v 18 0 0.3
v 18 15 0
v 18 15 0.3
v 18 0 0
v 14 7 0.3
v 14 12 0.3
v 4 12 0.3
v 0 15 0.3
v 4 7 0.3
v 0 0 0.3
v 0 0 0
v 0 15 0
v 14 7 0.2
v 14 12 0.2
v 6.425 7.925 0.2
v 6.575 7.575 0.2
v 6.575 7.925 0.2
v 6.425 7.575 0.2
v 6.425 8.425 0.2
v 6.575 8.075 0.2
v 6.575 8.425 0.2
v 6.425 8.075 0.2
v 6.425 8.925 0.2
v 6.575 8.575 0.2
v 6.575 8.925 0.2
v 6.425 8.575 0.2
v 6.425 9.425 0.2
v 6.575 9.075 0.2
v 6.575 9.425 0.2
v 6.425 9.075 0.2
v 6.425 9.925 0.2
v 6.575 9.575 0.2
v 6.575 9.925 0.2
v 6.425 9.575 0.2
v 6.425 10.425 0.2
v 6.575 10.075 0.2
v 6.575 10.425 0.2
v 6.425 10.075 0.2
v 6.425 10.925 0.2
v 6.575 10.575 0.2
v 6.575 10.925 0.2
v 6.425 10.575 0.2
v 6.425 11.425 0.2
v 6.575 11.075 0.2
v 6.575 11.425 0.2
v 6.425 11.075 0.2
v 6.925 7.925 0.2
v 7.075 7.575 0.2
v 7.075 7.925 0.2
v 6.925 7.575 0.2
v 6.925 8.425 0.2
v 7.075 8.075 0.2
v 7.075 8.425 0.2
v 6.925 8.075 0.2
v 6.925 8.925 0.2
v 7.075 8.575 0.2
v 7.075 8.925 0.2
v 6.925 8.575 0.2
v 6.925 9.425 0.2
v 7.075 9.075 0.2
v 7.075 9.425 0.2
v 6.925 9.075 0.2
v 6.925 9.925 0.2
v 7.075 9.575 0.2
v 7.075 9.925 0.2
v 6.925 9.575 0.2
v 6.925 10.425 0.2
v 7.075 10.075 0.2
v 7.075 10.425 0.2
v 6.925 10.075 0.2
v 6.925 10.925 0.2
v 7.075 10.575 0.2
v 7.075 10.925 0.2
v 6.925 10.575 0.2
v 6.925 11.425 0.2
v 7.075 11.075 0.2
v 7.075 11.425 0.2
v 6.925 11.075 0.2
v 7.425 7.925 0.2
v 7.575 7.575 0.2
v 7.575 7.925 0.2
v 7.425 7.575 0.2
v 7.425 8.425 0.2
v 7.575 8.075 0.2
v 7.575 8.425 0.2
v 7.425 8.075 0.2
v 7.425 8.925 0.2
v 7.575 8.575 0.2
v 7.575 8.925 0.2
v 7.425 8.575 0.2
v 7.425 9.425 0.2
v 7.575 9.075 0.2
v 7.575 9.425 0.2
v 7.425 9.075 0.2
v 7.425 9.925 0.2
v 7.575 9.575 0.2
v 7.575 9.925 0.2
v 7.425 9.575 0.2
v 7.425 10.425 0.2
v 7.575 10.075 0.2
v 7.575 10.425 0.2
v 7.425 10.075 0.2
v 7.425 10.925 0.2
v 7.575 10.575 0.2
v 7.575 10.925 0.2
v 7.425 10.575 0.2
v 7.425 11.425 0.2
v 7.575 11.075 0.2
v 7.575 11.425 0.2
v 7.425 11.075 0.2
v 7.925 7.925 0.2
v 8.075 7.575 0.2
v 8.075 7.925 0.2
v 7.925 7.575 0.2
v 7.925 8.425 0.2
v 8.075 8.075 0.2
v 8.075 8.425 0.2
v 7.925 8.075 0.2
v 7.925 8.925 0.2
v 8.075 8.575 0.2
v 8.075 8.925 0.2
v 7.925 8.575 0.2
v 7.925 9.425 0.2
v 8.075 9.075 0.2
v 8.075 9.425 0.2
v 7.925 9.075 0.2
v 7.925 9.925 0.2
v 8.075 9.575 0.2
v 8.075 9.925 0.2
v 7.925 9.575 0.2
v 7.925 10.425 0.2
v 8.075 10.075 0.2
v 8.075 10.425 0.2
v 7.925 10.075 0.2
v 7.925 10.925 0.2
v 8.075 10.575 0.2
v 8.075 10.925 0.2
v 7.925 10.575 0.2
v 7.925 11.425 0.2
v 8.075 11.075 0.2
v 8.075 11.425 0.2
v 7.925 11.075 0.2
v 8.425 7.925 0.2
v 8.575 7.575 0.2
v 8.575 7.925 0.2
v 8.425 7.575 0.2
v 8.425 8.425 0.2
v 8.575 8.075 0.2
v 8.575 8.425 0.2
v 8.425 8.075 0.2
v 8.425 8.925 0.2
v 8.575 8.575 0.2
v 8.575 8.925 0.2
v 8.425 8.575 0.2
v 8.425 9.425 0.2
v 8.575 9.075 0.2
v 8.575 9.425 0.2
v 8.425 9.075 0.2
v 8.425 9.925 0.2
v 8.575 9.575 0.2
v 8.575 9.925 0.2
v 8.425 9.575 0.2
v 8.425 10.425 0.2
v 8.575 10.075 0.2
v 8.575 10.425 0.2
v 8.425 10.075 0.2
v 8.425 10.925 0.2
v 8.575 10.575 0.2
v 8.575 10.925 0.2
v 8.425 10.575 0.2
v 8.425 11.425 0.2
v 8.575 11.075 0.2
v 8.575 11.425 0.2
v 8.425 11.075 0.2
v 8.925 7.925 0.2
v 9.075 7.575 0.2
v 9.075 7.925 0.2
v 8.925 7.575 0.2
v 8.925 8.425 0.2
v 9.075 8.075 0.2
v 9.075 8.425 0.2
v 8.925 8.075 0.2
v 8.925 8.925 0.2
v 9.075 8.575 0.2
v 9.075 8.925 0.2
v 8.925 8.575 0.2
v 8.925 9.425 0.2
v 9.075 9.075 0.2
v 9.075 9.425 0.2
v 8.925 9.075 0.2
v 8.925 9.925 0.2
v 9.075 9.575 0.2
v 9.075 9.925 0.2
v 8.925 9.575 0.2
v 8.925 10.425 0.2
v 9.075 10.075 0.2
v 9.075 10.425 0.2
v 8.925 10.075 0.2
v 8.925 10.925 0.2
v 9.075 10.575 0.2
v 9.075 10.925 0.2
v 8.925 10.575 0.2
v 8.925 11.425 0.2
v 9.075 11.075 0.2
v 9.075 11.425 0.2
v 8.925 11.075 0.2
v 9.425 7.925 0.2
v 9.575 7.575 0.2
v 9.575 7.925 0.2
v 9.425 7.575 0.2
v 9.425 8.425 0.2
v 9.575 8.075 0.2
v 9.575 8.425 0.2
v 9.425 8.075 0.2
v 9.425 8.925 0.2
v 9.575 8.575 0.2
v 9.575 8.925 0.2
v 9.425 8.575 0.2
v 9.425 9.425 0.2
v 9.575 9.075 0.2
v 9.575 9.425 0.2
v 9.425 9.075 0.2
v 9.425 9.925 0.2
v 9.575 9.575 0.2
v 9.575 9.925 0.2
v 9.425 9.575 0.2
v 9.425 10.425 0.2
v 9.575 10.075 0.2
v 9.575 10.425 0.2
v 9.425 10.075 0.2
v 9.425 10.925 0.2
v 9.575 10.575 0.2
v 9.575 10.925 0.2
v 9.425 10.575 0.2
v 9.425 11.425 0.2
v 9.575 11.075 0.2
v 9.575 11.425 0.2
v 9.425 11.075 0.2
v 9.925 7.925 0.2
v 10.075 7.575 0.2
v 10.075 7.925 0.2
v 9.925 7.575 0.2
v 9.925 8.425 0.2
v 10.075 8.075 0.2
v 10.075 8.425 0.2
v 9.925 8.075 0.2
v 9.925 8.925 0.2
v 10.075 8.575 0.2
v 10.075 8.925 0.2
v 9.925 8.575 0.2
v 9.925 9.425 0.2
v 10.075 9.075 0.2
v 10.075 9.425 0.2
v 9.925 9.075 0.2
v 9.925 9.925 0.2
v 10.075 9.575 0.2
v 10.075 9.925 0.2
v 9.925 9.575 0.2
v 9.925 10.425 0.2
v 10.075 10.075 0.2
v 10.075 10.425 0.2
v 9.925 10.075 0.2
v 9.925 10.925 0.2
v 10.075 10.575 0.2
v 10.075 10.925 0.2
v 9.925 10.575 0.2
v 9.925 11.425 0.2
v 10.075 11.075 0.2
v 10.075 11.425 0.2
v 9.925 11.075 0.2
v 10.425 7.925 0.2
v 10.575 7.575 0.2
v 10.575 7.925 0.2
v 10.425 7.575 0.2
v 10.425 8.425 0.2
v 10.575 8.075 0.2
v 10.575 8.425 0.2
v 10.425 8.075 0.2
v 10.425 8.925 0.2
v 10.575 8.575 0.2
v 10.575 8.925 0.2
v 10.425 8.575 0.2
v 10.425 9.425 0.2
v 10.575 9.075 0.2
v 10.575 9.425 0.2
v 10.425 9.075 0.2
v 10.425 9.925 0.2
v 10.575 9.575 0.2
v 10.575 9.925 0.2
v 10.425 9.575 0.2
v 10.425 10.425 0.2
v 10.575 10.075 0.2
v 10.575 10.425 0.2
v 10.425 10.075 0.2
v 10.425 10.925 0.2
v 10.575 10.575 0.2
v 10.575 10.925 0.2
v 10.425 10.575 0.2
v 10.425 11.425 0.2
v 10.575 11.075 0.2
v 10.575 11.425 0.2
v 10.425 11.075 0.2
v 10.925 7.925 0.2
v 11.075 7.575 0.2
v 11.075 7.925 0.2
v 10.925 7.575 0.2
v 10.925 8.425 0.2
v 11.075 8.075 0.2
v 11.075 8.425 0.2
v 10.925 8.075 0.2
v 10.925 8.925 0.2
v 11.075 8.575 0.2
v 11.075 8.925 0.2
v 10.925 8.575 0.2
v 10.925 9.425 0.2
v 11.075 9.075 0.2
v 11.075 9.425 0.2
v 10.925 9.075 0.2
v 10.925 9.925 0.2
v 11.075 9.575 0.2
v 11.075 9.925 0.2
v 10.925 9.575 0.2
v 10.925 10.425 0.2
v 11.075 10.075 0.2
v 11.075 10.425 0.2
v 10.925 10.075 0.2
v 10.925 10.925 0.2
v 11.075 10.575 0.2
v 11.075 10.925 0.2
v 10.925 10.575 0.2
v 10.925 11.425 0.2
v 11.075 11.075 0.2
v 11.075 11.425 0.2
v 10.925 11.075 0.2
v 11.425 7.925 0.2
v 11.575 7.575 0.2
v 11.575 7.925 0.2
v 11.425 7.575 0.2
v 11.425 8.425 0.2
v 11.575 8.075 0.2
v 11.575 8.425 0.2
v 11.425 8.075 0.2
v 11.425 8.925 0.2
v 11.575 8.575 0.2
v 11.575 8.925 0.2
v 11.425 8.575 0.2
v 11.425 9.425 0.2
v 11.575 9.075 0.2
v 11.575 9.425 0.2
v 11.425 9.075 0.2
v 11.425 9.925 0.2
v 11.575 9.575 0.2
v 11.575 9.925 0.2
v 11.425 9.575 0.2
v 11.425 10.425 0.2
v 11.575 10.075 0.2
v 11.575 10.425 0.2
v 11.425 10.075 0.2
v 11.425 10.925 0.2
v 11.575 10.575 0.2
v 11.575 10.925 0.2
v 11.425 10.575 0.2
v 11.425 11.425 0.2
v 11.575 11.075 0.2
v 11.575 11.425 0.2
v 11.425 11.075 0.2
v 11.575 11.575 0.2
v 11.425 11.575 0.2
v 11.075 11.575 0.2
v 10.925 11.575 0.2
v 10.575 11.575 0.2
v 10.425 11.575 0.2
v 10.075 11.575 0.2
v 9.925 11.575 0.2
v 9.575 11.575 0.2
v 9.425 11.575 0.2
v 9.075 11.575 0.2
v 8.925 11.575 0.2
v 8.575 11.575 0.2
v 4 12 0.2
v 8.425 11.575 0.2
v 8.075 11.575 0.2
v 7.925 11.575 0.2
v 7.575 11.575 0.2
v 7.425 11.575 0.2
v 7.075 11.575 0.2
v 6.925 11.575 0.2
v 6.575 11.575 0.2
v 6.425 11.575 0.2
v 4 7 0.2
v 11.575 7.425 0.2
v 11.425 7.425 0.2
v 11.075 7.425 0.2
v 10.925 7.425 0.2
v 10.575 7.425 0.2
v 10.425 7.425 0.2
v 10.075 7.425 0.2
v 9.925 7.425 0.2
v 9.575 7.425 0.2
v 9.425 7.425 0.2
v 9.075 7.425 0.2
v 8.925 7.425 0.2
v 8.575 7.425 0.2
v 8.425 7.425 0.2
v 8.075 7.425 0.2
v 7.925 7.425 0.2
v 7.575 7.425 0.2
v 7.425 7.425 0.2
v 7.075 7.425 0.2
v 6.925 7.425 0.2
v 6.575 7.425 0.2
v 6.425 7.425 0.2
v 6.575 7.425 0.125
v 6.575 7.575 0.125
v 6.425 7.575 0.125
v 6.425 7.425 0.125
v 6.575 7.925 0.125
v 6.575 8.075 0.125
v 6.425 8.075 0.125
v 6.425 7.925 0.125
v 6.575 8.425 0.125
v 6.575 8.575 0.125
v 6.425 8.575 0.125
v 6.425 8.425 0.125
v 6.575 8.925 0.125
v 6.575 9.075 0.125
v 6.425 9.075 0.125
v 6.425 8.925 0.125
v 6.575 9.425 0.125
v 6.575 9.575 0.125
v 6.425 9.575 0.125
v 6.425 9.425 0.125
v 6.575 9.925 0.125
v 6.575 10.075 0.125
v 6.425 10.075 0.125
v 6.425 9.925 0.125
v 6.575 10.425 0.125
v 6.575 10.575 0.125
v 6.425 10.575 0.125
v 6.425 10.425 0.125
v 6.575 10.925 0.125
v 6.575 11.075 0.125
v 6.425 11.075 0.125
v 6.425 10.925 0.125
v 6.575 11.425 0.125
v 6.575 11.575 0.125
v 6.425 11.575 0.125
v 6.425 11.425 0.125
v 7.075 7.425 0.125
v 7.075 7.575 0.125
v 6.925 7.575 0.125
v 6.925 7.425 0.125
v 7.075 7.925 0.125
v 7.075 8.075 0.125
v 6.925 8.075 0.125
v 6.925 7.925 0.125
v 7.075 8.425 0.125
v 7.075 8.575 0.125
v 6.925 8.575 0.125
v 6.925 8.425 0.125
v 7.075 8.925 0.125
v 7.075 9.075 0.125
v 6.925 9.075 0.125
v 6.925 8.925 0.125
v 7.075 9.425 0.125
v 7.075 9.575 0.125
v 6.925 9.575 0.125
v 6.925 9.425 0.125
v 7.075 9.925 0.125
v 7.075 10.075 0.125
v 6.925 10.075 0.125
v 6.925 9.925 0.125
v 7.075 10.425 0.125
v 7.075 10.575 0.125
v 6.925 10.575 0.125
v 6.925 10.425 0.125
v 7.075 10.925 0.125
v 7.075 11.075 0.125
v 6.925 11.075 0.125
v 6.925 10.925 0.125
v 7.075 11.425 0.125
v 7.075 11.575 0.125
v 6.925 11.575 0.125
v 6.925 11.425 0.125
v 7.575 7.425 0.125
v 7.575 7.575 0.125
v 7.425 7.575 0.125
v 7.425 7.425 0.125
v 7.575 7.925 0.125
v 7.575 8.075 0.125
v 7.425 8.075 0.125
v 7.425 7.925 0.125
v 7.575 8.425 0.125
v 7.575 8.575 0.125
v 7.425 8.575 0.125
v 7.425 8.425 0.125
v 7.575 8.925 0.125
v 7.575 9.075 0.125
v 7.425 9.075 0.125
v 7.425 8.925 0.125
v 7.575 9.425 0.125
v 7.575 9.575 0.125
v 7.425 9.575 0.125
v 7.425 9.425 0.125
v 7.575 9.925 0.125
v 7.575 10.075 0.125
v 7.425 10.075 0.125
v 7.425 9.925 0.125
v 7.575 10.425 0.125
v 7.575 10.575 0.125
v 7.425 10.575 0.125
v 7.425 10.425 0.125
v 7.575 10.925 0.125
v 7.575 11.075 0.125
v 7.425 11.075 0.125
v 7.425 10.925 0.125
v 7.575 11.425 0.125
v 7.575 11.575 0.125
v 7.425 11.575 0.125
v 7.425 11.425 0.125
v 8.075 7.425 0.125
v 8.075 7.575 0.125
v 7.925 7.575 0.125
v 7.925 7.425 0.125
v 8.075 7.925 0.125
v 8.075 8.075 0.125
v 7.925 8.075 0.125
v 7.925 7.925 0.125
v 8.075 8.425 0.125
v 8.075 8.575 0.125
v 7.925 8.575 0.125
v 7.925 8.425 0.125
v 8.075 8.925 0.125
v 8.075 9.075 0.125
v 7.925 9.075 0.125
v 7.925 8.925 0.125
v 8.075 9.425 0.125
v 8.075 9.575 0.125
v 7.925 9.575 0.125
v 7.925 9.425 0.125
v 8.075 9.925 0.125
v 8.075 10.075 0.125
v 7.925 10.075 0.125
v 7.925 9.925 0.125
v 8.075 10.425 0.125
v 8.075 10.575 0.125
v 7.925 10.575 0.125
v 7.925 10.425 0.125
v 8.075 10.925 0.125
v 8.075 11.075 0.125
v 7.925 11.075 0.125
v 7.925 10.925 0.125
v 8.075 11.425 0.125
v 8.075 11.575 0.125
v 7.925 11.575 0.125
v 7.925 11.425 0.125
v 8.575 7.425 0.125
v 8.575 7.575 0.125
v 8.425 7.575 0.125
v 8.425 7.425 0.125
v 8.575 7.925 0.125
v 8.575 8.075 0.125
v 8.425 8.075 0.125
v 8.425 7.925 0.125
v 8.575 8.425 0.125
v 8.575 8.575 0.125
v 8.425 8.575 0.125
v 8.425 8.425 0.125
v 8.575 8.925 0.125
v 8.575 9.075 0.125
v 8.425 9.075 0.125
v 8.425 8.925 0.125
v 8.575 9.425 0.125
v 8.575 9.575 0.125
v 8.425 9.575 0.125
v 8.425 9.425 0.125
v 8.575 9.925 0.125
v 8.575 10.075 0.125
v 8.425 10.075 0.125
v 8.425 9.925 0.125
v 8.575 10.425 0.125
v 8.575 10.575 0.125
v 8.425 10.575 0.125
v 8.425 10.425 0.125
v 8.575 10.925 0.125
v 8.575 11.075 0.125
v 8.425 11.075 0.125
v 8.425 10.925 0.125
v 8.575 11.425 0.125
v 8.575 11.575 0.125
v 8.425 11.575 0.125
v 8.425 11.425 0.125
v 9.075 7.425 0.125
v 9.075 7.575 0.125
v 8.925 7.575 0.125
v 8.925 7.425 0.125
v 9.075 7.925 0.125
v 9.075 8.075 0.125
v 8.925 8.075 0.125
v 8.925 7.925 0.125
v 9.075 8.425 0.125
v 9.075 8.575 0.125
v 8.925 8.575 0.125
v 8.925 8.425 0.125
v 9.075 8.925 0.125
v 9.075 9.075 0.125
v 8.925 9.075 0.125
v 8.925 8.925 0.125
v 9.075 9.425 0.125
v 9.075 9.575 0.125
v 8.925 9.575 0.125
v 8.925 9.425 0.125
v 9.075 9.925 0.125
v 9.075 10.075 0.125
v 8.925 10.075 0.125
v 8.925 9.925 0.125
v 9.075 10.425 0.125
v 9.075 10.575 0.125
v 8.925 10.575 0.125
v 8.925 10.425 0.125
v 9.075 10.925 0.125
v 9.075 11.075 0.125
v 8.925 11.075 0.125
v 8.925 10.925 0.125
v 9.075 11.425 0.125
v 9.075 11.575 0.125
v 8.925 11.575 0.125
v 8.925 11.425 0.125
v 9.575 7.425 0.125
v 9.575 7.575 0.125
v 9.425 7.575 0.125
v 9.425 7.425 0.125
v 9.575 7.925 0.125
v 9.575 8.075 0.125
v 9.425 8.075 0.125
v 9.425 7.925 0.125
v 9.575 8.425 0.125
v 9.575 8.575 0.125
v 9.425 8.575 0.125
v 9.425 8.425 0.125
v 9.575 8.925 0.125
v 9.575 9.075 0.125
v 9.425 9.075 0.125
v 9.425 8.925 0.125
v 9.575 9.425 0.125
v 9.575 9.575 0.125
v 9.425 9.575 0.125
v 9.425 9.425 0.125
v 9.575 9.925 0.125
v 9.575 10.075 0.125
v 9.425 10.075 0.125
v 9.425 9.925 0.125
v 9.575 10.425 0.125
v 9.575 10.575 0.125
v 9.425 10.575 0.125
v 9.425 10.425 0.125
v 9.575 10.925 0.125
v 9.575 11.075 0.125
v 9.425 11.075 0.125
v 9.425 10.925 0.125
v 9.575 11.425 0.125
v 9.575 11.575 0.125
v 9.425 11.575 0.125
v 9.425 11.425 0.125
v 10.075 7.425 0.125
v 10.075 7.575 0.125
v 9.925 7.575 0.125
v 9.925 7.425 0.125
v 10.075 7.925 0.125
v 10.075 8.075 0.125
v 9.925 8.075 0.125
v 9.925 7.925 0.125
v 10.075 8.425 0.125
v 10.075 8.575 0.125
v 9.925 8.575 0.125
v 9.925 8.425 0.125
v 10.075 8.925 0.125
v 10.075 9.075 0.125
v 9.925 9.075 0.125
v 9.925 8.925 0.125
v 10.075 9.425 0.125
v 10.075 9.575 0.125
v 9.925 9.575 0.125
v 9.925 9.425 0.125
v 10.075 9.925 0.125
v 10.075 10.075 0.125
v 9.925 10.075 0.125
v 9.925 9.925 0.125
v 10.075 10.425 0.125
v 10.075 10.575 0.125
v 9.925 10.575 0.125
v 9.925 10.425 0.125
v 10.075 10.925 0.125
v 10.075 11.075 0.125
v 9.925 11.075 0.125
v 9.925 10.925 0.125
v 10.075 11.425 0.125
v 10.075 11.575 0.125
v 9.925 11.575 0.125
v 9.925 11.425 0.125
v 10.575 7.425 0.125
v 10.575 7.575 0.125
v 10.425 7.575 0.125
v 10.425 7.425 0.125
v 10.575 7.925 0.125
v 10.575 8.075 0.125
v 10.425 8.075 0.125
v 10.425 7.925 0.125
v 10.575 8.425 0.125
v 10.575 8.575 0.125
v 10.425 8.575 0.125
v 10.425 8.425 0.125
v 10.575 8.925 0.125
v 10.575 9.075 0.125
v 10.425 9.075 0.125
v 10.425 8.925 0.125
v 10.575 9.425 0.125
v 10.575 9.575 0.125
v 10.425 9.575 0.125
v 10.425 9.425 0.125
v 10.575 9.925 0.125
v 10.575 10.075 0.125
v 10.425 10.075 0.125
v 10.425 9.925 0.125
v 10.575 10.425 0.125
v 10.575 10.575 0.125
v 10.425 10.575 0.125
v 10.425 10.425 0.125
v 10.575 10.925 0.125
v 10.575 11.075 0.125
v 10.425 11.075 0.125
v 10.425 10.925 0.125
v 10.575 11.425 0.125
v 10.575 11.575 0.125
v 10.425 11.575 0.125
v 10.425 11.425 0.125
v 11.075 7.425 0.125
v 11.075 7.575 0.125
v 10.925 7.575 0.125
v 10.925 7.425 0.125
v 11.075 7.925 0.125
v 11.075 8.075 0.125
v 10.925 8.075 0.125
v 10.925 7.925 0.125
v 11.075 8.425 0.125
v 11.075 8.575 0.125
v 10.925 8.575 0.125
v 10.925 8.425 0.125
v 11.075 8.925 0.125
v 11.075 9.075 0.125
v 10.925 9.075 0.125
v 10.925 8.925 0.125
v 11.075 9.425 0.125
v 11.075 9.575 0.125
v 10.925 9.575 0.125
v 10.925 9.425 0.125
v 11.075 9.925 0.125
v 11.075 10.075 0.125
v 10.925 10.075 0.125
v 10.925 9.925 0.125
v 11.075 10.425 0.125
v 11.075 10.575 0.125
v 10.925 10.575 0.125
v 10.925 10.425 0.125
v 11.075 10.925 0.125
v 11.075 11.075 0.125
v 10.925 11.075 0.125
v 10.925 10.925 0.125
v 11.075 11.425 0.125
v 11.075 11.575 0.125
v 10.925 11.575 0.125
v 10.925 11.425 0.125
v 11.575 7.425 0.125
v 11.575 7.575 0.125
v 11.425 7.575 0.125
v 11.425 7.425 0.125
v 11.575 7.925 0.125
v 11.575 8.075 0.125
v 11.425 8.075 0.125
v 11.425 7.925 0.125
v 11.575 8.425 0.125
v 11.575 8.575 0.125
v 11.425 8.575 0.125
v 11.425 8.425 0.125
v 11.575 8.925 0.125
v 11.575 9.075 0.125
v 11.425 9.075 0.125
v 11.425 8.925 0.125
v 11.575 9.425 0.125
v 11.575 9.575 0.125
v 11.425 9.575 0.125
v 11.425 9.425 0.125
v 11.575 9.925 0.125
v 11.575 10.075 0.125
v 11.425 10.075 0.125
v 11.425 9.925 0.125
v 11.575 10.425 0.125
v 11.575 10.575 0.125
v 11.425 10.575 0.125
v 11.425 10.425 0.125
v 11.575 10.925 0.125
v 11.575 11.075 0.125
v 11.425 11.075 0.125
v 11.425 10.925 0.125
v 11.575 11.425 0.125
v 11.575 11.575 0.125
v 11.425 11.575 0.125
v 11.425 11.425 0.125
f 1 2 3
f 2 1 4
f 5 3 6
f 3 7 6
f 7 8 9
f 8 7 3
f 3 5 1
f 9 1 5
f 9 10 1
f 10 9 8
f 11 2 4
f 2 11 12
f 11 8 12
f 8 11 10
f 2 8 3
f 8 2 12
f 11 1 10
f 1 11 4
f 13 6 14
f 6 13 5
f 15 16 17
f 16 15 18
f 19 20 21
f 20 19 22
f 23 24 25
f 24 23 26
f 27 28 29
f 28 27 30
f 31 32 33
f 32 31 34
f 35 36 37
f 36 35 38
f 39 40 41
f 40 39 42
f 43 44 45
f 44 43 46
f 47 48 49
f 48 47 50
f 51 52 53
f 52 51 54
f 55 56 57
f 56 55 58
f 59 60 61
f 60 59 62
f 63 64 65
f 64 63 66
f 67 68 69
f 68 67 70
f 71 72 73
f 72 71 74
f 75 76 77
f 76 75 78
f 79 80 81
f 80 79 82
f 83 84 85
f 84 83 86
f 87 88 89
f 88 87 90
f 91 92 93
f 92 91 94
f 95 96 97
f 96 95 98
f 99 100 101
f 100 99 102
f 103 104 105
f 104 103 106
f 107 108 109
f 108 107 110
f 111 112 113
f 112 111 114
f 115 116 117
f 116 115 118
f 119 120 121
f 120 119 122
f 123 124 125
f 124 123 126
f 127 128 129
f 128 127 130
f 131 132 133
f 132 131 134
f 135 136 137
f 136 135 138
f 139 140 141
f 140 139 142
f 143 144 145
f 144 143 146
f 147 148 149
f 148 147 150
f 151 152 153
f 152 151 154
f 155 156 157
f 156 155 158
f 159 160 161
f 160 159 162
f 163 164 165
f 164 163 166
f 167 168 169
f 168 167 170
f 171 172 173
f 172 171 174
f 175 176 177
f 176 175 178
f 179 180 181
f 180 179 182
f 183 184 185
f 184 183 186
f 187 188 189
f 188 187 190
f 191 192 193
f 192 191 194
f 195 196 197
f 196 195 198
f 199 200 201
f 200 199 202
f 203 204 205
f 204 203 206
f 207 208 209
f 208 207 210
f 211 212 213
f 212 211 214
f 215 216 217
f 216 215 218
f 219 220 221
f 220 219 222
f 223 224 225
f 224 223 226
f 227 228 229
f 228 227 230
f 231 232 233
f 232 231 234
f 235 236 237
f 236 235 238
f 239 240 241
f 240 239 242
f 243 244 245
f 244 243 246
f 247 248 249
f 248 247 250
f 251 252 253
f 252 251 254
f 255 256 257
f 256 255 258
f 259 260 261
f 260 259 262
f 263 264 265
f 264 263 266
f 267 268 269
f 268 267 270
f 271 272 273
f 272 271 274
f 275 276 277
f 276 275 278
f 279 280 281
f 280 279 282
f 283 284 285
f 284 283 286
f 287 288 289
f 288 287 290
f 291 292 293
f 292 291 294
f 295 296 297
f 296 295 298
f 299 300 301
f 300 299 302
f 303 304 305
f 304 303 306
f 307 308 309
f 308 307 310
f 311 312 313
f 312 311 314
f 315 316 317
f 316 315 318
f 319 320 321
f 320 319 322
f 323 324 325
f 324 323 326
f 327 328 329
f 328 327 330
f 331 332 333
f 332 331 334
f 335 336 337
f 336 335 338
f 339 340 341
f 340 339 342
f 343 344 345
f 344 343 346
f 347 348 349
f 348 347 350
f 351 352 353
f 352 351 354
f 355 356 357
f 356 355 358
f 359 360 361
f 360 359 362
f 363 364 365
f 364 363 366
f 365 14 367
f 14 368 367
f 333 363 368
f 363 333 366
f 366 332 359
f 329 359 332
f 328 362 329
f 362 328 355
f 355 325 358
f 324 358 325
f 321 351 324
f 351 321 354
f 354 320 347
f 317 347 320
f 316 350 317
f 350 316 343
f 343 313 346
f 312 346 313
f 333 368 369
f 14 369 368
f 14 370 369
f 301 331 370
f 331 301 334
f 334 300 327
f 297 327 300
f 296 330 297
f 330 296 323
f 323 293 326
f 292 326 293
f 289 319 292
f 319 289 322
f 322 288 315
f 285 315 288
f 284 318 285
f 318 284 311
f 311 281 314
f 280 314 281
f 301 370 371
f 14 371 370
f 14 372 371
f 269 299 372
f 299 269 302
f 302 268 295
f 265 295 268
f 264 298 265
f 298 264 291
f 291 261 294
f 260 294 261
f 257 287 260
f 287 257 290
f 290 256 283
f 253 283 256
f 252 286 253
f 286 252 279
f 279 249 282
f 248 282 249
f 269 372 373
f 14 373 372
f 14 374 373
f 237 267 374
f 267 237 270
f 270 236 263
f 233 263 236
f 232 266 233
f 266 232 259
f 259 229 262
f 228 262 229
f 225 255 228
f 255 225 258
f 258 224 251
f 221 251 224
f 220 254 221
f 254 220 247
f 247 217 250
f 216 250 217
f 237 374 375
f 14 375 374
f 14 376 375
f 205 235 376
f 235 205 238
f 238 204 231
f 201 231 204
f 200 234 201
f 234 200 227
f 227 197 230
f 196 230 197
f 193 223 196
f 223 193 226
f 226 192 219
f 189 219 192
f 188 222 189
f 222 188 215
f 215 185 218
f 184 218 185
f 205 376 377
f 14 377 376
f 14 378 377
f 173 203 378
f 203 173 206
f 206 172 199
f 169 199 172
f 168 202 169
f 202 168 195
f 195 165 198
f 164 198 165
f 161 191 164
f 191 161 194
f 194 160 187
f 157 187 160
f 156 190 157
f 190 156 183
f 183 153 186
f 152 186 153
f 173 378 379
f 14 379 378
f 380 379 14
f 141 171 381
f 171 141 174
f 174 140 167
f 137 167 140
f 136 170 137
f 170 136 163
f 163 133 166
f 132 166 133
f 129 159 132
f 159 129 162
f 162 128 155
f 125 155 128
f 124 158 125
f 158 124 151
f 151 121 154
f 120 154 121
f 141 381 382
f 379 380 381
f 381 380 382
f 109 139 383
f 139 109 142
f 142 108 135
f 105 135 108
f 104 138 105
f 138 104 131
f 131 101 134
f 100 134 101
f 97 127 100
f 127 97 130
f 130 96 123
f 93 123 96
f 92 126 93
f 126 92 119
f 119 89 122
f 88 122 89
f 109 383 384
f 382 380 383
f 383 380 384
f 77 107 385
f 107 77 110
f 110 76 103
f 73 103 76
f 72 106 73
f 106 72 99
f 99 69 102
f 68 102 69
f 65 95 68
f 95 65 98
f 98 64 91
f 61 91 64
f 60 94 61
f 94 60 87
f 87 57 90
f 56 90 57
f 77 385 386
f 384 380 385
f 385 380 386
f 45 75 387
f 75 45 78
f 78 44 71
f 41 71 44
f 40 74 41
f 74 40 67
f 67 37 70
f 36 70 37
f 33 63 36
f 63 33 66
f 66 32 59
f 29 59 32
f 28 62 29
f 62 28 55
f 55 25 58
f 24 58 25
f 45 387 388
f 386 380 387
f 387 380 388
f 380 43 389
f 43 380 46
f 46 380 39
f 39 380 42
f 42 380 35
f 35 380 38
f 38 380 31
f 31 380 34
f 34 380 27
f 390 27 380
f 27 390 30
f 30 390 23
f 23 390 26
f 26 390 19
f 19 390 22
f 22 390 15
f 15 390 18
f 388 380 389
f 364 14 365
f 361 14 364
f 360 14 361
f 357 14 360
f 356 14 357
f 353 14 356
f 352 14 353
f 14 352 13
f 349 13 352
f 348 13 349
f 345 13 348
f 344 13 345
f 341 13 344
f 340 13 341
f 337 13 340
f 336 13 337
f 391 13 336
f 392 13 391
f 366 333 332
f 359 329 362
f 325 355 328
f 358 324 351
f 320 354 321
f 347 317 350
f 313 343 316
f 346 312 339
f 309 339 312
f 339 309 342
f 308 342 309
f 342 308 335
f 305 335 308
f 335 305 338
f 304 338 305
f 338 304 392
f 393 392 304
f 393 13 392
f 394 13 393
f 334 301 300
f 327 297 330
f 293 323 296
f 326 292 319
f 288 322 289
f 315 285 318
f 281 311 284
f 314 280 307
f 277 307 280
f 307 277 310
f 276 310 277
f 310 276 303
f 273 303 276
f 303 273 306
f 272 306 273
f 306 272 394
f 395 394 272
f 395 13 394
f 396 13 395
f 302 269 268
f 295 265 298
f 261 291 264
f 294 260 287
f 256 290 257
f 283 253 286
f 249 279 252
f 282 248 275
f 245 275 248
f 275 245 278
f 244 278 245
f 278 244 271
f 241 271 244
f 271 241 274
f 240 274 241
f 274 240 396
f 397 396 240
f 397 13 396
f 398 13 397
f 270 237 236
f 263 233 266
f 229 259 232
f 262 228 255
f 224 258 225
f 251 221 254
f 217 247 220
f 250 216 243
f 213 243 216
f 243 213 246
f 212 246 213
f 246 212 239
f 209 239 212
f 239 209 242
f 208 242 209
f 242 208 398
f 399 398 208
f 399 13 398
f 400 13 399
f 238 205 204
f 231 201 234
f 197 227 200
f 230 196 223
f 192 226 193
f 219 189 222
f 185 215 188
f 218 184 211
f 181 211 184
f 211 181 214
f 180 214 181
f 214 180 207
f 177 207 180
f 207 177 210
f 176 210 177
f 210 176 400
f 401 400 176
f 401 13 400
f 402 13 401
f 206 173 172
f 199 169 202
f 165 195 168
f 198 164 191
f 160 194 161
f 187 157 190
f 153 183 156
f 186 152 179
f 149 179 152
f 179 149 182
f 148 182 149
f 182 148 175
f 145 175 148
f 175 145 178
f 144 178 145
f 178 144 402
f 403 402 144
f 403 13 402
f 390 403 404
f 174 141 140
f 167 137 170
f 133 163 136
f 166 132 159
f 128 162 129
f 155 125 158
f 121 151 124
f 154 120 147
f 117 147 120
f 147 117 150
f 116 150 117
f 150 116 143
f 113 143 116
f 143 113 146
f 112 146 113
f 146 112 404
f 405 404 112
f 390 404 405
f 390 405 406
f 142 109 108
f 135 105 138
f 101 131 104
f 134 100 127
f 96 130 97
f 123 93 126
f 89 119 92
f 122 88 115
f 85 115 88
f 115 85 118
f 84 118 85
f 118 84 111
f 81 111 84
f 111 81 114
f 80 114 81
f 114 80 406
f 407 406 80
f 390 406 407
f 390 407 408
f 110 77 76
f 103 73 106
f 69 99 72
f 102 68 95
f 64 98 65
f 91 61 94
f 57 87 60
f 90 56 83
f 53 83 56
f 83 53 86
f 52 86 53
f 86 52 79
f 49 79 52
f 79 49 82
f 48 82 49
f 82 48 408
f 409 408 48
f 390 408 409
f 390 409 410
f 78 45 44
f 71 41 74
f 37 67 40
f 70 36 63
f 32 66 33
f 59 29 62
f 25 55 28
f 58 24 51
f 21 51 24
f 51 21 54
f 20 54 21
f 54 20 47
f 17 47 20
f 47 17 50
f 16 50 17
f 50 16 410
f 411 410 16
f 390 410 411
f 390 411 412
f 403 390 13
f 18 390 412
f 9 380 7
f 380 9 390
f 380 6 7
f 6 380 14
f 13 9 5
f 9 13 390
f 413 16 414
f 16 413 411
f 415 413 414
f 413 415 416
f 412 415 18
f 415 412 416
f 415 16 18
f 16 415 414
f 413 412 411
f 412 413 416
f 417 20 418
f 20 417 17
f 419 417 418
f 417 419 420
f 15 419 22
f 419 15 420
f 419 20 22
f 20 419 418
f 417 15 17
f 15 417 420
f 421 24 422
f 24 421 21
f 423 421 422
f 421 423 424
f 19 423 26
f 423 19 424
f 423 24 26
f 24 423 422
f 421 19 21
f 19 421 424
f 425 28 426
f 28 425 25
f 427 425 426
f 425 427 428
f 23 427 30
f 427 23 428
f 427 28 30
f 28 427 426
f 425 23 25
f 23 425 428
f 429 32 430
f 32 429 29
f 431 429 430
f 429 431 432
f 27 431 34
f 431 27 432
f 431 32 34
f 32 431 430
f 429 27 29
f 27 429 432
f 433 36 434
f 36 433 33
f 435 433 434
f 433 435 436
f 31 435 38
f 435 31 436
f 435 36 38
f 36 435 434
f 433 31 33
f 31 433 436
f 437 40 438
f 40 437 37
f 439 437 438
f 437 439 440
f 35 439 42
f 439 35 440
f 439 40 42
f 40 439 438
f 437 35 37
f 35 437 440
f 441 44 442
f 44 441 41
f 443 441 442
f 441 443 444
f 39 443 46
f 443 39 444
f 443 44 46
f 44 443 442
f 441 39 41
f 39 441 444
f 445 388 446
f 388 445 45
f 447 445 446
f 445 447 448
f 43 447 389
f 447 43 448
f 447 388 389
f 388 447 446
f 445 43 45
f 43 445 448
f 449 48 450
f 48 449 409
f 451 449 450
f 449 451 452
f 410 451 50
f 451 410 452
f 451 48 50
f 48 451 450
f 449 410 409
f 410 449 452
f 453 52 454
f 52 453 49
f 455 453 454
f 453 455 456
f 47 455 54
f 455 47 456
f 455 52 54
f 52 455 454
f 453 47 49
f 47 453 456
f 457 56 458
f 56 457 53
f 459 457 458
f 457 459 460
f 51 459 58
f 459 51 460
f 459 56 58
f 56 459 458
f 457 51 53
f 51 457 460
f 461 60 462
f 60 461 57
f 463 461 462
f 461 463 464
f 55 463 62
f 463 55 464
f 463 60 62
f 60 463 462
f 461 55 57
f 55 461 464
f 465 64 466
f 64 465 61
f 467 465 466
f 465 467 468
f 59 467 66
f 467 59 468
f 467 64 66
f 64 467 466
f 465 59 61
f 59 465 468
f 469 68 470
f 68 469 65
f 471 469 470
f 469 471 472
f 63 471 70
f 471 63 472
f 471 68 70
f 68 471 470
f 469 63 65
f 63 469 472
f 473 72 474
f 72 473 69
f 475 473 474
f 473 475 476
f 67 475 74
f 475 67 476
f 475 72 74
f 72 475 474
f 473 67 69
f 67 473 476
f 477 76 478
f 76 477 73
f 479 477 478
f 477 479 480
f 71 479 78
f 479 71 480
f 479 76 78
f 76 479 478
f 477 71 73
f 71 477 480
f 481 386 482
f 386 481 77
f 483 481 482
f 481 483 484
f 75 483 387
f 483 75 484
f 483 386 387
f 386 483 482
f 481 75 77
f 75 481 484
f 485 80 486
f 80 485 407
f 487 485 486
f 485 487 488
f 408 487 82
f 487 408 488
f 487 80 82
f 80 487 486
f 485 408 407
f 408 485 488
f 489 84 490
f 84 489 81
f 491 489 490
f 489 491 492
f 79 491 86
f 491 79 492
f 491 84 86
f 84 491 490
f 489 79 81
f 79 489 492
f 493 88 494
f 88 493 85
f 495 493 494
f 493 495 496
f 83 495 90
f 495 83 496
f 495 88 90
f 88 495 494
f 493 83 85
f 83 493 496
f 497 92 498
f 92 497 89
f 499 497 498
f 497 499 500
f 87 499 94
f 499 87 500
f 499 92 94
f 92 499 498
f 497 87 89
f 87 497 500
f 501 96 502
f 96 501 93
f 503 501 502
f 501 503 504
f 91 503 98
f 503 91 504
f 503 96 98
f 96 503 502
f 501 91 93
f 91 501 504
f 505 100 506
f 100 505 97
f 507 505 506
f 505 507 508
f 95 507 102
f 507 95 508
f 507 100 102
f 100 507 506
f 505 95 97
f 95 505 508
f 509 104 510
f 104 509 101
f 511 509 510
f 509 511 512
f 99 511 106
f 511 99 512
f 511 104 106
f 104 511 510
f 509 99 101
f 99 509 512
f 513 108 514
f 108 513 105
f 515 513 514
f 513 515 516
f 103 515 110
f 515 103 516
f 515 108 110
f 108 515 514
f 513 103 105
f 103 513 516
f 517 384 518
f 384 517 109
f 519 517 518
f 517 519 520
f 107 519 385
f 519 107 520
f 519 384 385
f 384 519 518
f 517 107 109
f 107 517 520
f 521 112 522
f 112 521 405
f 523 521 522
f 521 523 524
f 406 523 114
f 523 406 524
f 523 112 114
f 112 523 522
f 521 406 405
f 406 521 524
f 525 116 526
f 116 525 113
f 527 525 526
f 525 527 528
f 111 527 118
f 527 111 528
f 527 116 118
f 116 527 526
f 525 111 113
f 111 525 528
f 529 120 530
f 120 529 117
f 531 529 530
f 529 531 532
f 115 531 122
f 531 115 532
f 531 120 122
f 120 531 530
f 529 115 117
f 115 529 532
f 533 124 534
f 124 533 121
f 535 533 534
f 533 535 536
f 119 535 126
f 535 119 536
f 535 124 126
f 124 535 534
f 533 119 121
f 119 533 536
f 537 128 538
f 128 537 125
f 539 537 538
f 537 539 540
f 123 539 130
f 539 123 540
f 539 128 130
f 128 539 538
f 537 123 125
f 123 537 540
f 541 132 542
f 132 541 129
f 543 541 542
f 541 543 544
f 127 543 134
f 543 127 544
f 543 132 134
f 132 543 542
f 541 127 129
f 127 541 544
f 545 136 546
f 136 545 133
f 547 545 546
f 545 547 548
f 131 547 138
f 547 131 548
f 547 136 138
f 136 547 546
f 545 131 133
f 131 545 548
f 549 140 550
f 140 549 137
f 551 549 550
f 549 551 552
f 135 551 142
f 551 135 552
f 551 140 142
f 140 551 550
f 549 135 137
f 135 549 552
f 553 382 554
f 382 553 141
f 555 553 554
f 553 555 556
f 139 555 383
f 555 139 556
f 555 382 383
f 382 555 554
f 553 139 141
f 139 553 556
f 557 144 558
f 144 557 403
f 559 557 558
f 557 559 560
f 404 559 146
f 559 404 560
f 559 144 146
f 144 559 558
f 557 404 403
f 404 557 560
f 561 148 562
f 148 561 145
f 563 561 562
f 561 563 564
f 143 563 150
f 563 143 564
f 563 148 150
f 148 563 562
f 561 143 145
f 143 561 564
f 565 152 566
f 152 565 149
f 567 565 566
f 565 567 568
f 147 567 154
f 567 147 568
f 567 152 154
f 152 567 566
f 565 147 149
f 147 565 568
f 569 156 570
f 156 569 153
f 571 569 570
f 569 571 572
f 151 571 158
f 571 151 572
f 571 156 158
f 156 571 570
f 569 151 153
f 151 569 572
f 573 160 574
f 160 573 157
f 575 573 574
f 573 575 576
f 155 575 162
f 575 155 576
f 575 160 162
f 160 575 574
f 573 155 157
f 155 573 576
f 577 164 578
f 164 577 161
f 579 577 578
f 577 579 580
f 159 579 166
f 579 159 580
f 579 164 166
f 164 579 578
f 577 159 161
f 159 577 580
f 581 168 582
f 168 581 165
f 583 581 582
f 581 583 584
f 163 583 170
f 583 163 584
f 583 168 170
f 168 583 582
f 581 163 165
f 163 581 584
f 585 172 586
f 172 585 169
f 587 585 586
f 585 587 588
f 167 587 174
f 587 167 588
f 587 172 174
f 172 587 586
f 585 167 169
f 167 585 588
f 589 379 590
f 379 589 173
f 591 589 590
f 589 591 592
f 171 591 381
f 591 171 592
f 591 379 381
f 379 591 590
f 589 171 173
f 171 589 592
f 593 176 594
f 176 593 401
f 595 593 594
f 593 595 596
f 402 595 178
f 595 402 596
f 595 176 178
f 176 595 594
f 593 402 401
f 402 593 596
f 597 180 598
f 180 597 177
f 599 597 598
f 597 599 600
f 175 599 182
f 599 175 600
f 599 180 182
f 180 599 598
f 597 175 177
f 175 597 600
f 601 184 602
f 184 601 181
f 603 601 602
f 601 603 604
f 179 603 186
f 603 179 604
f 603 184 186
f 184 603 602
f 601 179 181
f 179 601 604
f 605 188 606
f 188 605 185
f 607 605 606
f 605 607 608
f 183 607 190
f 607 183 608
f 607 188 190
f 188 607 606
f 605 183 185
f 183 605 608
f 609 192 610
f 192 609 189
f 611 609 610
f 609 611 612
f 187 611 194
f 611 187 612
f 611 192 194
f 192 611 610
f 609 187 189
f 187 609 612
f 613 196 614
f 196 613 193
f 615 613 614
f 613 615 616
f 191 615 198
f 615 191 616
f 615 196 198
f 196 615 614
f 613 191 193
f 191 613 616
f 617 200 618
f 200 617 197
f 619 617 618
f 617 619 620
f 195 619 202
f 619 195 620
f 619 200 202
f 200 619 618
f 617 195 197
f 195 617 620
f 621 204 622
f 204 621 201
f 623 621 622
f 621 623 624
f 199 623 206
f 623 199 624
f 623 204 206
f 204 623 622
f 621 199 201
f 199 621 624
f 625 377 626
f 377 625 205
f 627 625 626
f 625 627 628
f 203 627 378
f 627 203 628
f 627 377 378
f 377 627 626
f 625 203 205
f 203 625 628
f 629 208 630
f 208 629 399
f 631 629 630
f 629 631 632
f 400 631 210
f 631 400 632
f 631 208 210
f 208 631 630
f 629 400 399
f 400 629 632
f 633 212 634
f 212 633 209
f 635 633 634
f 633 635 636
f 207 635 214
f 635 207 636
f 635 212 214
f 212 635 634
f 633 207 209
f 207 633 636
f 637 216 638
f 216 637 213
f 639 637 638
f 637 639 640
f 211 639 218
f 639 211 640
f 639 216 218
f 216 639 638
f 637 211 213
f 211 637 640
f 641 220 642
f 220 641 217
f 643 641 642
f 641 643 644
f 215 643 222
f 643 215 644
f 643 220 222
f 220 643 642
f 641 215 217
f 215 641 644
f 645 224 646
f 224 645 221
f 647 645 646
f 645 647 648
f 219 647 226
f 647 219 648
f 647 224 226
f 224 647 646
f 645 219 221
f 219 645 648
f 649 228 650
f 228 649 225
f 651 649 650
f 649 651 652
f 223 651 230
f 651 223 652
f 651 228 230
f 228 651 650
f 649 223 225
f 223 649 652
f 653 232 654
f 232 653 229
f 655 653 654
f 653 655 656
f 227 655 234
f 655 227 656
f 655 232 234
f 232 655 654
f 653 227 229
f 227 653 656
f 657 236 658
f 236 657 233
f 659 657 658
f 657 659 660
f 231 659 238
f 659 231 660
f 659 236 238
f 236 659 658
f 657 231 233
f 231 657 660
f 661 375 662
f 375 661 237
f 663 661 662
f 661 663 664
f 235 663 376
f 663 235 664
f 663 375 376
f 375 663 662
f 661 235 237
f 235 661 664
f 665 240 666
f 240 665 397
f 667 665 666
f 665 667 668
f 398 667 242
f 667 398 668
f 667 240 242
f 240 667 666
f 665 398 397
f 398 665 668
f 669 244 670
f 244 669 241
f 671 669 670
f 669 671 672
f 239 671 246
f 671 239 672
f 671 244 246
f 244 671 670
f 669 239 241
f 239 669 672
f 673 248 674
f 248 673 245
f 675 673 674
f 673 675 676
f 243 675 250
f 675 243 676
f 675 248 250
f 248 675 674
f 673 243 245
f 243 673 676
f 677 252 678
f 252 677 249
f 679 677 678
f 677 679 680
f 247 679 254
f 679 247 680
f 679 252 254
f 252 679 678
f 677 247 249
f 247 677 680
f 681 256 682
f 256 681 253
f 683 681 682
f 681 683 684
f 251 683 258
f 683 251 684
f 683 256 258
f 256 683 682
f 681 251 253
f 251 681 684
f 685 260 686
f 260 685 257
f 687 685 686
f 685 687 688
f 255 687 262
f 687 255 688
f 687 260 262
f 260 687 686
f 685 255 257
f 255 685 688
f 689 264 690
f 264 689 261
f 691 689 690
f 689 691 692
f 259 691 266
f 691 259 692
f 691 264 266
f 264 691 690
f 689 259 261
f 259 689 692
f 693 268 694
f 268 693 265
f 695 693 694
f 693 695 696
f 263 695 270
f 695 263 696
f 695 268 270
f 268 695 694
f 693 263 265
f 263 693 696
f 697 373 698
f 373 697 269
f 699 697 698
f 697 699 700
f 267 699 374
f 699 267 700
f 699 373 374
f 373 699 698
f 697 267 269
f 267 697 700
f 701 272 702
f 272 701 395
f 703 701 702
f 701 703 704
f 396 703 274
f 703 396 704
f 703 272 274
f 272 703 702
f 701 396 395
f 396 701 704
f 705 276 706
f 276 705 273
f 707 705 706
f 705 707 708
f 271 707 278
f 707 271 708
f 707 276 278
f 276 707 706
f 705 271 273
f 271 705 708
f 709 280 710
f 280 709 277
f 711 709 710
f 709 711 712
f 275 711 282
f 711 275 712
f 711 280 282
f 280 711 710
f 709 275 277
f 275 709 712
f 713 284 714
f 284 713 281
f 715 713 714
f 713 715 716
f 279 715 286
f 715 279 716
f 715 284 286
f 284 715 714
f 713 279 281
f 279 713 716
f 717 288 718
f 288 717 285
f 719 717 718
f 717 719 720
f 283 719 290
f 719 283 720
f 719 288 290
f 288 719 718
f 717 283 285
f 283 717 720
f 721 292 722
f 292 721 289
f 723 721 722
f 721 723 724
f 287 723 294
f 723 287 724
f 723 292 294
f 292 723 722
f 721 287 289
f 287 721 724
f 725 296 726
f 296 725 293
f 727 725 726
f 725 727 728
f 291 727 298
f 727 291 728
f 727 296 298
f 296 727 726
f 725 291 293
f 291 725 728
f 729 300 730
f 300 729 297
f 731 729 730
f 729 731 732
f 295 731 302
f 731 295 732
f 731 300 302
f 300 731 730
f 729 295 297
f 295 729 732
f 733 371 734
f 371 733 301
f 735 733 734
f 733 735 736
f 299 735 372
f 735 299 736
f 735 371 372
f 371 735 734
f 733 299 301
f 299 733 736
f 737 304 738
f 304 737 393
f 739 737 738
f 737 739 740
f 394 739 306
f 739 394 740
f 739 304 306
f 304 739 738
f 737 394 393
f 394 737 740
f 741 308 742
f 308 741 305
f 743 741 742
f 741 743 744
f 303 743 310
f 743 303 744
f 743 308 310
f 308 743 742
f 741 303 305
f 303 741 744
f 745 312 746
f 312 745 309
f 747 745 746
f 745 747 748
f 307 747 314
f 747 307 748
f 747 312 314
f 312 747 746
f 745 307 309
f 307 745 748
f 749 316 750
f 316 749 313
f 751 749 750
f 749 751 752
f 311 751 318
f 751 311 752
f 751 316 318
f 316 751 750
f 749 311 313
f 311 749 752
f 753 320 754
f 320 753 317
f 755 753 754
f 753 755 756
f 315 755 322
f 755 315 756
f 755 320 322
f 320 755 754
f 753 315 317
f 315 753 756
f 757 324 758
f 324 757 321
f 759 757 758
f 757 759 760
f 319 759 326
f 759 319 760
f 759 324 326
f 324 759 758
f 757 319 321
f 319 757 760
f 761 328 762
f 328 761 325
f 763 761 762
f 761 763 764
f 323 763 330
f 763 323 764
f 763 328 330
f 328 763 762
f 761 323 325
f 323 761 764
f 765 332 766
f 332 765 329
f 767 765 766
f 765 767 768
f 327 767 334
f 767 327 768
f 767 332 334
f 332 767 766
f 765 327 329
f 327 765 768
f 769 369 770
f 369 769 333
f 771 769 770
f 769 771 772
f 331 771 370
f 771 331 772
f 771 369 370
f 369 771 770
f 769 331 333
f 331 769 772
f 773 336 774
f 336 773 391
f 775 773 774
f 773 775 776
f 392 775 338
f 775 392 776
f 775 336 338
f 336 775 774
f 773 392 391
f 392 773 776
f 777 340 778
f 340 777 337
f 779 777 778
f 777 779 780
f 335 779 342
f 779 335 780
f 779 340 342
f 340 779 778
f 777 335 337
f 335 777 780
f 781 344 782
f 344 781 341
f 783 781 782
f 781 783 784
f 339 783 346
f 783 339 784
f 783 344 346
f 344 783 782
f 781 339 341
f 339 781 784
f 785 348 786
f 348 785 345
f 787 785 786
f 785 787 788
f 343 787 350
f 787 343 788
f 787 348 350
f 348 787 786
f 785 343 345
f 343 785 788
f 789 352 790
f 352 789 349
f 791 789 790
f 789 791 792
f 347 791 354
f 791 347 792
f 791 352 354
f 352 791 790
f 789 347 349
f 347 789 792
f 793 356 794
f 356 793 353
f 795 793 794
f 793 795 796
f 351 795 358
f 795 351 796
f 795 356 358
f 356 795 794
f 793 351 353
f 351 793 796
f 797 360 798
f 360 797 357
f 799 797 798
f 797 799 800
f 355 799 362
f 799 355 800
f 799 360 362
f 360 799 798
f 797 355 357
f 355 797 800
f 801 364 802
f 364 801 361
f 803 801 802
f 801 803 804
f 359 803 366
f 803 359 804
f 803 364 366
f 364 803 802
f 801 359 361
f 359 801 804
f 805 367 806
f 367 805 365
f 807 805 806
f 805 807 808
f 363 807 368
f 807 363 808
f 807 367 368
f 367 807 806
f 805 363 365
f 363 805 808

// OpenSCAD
plate_size = [18, 15, 0.3];
mold_size = [10, 5, 0.2];
mold_coord = [4, 7, 0.2];

bump_size = 0.15;
bump_spacing = 0.5;
base = [6, 7, 0.2];

difference() {
    
    difference() {
        cube(plate_size);
        translate(mold_coord)
            cube(mold_size);
        
    };

    for (i=[1:1:11]) {
        for (j=[1:1:9]) {
            translate(base + [i * bump_spacing, j * bump_spacing, 0])
                cube(bump_size, center = true);
        }
    };
}
